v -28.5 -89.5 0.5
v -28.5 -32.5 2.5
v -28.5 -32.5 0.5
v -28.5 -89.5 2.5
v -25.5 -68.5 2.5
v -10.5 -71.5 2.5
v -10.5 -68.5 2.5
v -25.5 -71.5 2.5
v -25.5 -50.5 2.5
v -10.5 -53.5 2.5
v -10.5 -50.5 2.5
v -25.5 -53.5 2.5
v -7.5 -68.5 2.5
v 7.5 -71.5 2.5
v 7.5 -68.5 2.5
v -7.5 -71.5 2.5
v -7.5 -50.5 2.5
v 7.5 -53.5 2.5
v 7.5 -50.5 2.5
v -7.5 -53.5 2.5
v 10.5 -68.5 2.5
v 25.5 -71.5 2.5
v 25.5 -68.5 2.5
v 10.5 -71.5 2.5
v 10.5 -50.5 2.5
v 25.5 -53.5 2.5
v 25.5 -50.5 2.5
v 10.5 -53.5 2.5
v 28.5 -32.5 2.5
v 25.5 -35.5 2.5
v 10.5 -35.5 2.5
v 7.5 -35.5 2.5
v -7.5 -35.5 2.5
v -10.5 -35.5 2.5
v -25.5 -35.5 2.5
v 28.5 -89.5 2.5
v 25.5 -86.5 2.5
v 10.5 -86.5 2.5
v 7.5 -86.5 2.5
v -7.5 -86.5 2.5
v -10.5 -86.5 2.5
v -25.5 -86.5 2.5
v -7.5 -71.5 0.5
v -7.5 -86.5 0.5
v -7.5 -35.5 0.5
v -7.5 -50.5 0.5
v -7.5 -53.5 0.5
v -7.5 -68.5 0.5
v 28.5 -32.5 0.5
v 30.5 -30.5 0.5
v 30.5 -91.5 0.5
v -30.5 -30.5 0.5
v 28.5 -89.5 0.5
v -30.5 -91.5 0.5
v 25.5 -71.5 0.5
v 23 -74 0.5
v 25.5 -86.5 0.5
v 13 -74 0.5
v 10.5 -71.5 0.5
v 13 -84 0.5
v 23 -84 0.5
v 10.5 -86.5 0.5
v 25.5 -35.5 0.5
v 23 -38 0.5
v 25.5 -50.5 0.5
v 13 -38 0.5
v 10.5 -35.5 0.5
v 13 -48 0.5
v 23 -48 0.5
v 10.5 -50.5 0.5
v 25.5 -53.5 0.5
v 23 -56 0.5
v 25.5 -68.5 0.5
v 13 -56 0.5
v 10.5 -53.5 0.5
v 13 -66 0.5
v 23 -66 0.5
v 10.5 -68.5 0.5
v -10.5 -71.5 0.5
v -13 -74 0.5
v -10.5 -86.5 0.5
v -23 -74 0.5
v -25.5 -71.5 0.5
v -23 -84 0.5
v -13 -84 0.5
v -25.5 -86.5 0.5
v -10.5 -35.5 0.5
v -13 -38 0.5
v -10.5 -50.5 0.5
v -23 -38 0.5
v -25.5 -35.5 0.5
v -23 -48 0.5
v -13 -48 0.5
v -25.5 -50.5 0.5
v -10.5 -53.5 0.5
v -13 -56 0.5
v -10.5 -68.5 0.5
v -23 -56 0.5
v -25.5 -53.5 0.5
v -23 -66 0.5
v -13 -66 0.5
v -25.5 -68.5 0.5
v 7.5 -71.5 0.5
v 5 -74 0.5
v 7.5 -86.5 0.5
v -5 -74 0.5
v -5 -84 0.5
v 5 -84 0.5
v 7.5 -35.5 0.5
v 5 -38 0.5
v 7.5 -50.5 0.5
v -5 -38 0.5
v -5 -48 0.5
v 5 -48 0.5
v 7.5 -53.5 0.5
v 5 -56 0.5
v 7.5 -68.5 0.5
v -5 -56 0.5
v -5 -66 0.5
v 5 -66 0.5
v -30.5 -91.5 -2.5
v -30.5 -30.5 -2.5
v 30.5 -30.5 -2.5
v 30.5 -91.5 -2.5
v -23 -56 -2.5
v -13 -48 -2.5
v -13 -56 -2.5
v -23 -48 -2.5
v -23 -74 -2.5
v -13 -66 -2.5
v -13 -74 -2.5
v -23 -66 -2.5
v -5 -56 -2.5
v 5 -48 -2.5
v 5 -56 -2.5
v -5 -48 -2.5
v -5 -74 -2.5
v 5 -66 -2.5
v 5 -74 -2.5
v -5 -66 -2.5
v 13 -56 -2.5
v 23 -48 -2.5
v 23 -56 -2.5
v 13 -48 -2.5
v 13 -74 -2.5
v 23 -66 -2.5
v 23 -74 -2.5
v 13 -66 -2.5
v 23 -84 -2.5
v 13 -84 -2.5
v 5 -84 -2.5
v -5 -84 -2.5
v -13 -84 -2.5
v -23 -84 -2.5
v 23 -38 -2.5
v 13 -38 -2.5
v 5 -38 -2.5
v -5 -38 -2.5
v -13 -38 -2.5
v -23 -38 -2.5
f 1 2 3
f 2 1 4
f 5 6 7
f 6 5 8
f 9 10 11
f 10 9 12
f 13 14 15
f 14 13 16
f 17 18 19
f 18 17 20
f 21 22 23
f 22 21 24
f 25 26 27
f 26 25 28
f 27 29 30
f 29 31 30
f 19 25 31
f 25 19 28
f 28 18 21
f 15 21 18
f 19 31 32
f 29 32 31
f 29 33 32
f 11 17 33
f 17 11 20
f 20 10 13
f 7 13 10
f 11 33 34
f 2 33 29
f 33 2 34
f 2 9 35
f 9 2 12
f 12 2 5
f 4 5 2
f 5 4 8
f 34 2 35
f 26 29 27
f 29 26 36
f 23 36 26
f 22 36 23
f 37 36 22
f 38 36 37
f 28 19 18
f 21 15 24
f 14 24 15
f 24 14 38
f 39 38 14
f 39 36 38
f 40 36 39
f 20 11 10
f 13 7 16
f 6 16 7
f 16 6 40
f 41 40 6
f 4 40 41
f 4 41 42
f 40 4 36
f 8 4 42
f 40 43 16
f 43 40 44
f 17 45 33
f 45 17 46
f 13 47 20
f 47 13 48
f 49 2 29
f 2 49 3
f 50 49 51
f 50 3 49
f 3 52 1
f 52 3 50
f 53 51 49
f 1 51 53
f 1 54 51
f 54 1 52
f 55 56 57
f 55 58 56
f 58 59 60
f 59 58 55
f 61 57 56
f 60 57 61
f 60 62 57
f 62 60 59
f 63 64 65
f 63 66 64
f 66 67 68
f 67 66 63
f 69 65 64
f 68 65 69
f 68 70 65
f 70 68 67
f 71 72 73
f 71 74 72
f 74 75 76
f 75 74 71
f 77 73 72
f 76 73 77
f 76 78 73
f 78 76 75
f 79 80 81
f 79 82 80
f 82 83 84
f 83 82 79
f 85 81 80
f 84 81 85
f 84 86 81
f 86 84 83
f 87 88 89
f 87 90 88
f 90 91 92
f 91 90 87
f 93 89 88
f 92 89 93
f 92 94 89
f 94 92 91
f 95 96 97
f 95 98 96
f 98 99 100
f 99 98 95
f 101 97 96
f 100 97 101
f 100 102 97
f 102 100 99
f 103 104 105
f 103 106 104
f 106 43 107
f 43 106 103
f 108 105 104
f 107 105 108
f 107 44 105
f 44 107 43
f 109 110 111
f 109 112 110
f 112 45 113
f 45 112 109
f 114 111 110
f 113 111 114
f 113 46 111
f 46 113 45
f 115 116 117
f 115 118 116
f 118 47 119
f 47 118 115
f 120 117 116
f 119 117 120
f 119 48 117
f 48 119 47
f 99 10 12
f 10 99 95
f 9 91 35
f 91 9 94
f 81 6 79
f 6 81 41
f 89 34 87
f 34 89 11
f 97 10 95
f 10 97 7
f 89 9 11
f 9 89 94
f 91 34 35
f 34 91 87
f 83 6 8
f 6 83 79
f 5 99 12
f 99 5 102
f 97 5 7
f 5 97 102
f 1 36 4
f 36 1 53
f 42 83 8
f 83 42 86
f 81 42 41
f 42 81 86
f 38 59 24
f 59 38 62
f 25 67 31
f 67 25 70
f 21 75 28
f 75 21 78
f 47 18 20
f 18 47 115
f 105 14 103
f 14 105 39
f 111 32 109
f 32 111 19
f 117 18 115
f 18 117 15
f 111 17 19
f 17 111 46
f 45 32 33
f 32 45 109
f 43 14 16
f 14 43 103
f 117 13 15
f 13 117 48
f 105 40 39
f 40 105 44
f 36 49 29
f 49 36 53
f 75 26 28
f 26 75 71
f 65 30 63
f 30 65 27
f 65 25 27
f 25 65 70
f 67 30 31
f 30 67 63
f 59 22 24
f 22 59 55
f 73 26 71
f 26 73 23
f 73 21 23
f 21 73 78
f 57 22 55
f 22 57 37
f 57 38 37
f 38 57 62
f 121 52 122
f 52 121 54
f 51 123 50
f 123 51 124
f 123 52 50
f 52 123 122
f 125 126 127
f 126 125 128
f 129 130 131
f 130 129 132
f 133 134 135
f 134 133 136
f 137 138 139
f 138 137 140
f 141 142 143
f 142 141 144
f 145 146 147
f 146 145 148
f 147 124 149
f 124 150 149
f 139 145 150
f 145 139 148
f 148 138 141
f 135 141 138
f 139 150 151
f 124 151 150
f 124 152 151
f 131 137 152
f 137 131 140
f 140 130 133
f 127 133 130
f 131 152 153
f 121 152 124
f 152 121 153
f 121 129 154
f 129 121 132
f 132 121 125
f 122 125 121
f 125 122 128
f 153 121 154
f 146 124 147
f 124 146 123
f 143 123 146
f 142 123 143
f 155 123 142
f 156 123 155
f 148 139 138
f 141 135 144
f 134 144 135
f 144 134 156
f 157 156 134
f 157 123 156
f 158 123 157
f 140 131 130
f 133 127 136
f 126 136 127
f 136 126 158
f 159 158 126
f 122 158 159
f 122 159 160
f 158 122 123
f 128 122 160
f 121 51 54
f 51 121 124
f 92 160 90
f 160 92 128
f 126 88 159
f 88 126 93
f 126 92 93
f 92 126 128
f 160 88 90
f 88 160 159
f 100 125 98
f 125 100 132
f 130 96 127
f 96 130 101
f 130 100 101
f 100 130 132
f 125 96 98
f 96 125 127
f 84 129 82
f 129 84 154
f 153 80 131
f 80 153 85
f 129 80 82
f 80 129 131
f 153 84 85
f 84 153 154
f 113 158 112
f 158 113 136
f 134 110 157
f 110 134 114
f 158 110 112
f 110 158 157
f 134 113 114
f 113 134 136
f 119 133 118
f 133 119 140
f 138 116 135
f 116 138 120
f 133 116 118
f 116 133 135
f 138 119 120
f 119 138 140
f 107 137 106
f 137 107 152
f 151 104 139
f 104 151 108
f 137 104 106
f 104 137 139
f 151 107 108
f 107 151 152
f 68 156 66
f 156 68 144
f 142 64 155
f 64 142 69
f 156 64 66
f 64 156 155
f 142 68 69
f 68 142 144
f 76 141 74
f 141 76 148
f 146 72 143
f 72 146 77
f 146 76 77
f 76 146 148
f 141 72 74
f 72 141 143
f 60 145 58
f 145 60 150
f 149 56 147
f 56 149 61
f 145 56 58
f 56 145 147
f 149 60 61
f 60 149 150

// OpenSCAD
$fieldWidth=15;
$fieldHeight=3;
$borderWidth=3;
$borderHeight=2;
$edgeWidth=2;
$spaceWidth=10;

module board(center=true) {
x=(center)?(-($borderWidth*4+$fieldWidth*3+$edgeWidth*2)/2):(0);
y=(center)?(-($borderWidth*4+$fieldWidth*3+$edgeWidth*2)/2):(0);
z=(center)?(-($fieldHeight+$borderHeight)/2):(0);
translate([x, y, z]) {
difference() {
union() {
translate([0, -($borderWidth*4+$fieldWidth*3+$edgeWidth*2), 0]) cube([$borderWidth*4+$fieldWidth*3+$edgeWidth*2, $borderWidth*4+$fieldWidth*3+$edgeWidth*2, $fieldHeight]);
for( i = [0:3-1]) {
for( j = [0:3-1]) {
x=$edgeWidth+i*($fieldWidth+$borderWidth);
y=-($edgeWidth+j*($fieldWidth+$borderWidth))-$fieldWidth-$borderWidth*2;
translate([x,y,$fieldHeight]) {
difference() {
cube([$fieldWidth+$borderWidth*2, $fieldWidth+$borderWidth*2, $borderHeight]);
translate([$borderWidth, $borderWidth, 0])
cube([$fieldWidth, $fieldWidth, $borderHeight]);
}
}
}
}
}

for( i = [0:3-1]) {
for( j = [0:3-1]) {
x=$edgeWidth+i*($fieldWidth+$borderWidth);
y=-($edgeWidth+j*($fieldWidth+$borderWidth))-$fieldWidth-$borderWidth*2;
translate([x,y,0]) {
translate([$borderWidth+$fieldWidth/2-$spaceWidth/2, $borderWidth+$fieldWidth/2-$spaceWidth/2, 0])
cube([$spaceWidth, $spaceWidth, $fieldHeight]);
}
}
}
}
}
}

board();
